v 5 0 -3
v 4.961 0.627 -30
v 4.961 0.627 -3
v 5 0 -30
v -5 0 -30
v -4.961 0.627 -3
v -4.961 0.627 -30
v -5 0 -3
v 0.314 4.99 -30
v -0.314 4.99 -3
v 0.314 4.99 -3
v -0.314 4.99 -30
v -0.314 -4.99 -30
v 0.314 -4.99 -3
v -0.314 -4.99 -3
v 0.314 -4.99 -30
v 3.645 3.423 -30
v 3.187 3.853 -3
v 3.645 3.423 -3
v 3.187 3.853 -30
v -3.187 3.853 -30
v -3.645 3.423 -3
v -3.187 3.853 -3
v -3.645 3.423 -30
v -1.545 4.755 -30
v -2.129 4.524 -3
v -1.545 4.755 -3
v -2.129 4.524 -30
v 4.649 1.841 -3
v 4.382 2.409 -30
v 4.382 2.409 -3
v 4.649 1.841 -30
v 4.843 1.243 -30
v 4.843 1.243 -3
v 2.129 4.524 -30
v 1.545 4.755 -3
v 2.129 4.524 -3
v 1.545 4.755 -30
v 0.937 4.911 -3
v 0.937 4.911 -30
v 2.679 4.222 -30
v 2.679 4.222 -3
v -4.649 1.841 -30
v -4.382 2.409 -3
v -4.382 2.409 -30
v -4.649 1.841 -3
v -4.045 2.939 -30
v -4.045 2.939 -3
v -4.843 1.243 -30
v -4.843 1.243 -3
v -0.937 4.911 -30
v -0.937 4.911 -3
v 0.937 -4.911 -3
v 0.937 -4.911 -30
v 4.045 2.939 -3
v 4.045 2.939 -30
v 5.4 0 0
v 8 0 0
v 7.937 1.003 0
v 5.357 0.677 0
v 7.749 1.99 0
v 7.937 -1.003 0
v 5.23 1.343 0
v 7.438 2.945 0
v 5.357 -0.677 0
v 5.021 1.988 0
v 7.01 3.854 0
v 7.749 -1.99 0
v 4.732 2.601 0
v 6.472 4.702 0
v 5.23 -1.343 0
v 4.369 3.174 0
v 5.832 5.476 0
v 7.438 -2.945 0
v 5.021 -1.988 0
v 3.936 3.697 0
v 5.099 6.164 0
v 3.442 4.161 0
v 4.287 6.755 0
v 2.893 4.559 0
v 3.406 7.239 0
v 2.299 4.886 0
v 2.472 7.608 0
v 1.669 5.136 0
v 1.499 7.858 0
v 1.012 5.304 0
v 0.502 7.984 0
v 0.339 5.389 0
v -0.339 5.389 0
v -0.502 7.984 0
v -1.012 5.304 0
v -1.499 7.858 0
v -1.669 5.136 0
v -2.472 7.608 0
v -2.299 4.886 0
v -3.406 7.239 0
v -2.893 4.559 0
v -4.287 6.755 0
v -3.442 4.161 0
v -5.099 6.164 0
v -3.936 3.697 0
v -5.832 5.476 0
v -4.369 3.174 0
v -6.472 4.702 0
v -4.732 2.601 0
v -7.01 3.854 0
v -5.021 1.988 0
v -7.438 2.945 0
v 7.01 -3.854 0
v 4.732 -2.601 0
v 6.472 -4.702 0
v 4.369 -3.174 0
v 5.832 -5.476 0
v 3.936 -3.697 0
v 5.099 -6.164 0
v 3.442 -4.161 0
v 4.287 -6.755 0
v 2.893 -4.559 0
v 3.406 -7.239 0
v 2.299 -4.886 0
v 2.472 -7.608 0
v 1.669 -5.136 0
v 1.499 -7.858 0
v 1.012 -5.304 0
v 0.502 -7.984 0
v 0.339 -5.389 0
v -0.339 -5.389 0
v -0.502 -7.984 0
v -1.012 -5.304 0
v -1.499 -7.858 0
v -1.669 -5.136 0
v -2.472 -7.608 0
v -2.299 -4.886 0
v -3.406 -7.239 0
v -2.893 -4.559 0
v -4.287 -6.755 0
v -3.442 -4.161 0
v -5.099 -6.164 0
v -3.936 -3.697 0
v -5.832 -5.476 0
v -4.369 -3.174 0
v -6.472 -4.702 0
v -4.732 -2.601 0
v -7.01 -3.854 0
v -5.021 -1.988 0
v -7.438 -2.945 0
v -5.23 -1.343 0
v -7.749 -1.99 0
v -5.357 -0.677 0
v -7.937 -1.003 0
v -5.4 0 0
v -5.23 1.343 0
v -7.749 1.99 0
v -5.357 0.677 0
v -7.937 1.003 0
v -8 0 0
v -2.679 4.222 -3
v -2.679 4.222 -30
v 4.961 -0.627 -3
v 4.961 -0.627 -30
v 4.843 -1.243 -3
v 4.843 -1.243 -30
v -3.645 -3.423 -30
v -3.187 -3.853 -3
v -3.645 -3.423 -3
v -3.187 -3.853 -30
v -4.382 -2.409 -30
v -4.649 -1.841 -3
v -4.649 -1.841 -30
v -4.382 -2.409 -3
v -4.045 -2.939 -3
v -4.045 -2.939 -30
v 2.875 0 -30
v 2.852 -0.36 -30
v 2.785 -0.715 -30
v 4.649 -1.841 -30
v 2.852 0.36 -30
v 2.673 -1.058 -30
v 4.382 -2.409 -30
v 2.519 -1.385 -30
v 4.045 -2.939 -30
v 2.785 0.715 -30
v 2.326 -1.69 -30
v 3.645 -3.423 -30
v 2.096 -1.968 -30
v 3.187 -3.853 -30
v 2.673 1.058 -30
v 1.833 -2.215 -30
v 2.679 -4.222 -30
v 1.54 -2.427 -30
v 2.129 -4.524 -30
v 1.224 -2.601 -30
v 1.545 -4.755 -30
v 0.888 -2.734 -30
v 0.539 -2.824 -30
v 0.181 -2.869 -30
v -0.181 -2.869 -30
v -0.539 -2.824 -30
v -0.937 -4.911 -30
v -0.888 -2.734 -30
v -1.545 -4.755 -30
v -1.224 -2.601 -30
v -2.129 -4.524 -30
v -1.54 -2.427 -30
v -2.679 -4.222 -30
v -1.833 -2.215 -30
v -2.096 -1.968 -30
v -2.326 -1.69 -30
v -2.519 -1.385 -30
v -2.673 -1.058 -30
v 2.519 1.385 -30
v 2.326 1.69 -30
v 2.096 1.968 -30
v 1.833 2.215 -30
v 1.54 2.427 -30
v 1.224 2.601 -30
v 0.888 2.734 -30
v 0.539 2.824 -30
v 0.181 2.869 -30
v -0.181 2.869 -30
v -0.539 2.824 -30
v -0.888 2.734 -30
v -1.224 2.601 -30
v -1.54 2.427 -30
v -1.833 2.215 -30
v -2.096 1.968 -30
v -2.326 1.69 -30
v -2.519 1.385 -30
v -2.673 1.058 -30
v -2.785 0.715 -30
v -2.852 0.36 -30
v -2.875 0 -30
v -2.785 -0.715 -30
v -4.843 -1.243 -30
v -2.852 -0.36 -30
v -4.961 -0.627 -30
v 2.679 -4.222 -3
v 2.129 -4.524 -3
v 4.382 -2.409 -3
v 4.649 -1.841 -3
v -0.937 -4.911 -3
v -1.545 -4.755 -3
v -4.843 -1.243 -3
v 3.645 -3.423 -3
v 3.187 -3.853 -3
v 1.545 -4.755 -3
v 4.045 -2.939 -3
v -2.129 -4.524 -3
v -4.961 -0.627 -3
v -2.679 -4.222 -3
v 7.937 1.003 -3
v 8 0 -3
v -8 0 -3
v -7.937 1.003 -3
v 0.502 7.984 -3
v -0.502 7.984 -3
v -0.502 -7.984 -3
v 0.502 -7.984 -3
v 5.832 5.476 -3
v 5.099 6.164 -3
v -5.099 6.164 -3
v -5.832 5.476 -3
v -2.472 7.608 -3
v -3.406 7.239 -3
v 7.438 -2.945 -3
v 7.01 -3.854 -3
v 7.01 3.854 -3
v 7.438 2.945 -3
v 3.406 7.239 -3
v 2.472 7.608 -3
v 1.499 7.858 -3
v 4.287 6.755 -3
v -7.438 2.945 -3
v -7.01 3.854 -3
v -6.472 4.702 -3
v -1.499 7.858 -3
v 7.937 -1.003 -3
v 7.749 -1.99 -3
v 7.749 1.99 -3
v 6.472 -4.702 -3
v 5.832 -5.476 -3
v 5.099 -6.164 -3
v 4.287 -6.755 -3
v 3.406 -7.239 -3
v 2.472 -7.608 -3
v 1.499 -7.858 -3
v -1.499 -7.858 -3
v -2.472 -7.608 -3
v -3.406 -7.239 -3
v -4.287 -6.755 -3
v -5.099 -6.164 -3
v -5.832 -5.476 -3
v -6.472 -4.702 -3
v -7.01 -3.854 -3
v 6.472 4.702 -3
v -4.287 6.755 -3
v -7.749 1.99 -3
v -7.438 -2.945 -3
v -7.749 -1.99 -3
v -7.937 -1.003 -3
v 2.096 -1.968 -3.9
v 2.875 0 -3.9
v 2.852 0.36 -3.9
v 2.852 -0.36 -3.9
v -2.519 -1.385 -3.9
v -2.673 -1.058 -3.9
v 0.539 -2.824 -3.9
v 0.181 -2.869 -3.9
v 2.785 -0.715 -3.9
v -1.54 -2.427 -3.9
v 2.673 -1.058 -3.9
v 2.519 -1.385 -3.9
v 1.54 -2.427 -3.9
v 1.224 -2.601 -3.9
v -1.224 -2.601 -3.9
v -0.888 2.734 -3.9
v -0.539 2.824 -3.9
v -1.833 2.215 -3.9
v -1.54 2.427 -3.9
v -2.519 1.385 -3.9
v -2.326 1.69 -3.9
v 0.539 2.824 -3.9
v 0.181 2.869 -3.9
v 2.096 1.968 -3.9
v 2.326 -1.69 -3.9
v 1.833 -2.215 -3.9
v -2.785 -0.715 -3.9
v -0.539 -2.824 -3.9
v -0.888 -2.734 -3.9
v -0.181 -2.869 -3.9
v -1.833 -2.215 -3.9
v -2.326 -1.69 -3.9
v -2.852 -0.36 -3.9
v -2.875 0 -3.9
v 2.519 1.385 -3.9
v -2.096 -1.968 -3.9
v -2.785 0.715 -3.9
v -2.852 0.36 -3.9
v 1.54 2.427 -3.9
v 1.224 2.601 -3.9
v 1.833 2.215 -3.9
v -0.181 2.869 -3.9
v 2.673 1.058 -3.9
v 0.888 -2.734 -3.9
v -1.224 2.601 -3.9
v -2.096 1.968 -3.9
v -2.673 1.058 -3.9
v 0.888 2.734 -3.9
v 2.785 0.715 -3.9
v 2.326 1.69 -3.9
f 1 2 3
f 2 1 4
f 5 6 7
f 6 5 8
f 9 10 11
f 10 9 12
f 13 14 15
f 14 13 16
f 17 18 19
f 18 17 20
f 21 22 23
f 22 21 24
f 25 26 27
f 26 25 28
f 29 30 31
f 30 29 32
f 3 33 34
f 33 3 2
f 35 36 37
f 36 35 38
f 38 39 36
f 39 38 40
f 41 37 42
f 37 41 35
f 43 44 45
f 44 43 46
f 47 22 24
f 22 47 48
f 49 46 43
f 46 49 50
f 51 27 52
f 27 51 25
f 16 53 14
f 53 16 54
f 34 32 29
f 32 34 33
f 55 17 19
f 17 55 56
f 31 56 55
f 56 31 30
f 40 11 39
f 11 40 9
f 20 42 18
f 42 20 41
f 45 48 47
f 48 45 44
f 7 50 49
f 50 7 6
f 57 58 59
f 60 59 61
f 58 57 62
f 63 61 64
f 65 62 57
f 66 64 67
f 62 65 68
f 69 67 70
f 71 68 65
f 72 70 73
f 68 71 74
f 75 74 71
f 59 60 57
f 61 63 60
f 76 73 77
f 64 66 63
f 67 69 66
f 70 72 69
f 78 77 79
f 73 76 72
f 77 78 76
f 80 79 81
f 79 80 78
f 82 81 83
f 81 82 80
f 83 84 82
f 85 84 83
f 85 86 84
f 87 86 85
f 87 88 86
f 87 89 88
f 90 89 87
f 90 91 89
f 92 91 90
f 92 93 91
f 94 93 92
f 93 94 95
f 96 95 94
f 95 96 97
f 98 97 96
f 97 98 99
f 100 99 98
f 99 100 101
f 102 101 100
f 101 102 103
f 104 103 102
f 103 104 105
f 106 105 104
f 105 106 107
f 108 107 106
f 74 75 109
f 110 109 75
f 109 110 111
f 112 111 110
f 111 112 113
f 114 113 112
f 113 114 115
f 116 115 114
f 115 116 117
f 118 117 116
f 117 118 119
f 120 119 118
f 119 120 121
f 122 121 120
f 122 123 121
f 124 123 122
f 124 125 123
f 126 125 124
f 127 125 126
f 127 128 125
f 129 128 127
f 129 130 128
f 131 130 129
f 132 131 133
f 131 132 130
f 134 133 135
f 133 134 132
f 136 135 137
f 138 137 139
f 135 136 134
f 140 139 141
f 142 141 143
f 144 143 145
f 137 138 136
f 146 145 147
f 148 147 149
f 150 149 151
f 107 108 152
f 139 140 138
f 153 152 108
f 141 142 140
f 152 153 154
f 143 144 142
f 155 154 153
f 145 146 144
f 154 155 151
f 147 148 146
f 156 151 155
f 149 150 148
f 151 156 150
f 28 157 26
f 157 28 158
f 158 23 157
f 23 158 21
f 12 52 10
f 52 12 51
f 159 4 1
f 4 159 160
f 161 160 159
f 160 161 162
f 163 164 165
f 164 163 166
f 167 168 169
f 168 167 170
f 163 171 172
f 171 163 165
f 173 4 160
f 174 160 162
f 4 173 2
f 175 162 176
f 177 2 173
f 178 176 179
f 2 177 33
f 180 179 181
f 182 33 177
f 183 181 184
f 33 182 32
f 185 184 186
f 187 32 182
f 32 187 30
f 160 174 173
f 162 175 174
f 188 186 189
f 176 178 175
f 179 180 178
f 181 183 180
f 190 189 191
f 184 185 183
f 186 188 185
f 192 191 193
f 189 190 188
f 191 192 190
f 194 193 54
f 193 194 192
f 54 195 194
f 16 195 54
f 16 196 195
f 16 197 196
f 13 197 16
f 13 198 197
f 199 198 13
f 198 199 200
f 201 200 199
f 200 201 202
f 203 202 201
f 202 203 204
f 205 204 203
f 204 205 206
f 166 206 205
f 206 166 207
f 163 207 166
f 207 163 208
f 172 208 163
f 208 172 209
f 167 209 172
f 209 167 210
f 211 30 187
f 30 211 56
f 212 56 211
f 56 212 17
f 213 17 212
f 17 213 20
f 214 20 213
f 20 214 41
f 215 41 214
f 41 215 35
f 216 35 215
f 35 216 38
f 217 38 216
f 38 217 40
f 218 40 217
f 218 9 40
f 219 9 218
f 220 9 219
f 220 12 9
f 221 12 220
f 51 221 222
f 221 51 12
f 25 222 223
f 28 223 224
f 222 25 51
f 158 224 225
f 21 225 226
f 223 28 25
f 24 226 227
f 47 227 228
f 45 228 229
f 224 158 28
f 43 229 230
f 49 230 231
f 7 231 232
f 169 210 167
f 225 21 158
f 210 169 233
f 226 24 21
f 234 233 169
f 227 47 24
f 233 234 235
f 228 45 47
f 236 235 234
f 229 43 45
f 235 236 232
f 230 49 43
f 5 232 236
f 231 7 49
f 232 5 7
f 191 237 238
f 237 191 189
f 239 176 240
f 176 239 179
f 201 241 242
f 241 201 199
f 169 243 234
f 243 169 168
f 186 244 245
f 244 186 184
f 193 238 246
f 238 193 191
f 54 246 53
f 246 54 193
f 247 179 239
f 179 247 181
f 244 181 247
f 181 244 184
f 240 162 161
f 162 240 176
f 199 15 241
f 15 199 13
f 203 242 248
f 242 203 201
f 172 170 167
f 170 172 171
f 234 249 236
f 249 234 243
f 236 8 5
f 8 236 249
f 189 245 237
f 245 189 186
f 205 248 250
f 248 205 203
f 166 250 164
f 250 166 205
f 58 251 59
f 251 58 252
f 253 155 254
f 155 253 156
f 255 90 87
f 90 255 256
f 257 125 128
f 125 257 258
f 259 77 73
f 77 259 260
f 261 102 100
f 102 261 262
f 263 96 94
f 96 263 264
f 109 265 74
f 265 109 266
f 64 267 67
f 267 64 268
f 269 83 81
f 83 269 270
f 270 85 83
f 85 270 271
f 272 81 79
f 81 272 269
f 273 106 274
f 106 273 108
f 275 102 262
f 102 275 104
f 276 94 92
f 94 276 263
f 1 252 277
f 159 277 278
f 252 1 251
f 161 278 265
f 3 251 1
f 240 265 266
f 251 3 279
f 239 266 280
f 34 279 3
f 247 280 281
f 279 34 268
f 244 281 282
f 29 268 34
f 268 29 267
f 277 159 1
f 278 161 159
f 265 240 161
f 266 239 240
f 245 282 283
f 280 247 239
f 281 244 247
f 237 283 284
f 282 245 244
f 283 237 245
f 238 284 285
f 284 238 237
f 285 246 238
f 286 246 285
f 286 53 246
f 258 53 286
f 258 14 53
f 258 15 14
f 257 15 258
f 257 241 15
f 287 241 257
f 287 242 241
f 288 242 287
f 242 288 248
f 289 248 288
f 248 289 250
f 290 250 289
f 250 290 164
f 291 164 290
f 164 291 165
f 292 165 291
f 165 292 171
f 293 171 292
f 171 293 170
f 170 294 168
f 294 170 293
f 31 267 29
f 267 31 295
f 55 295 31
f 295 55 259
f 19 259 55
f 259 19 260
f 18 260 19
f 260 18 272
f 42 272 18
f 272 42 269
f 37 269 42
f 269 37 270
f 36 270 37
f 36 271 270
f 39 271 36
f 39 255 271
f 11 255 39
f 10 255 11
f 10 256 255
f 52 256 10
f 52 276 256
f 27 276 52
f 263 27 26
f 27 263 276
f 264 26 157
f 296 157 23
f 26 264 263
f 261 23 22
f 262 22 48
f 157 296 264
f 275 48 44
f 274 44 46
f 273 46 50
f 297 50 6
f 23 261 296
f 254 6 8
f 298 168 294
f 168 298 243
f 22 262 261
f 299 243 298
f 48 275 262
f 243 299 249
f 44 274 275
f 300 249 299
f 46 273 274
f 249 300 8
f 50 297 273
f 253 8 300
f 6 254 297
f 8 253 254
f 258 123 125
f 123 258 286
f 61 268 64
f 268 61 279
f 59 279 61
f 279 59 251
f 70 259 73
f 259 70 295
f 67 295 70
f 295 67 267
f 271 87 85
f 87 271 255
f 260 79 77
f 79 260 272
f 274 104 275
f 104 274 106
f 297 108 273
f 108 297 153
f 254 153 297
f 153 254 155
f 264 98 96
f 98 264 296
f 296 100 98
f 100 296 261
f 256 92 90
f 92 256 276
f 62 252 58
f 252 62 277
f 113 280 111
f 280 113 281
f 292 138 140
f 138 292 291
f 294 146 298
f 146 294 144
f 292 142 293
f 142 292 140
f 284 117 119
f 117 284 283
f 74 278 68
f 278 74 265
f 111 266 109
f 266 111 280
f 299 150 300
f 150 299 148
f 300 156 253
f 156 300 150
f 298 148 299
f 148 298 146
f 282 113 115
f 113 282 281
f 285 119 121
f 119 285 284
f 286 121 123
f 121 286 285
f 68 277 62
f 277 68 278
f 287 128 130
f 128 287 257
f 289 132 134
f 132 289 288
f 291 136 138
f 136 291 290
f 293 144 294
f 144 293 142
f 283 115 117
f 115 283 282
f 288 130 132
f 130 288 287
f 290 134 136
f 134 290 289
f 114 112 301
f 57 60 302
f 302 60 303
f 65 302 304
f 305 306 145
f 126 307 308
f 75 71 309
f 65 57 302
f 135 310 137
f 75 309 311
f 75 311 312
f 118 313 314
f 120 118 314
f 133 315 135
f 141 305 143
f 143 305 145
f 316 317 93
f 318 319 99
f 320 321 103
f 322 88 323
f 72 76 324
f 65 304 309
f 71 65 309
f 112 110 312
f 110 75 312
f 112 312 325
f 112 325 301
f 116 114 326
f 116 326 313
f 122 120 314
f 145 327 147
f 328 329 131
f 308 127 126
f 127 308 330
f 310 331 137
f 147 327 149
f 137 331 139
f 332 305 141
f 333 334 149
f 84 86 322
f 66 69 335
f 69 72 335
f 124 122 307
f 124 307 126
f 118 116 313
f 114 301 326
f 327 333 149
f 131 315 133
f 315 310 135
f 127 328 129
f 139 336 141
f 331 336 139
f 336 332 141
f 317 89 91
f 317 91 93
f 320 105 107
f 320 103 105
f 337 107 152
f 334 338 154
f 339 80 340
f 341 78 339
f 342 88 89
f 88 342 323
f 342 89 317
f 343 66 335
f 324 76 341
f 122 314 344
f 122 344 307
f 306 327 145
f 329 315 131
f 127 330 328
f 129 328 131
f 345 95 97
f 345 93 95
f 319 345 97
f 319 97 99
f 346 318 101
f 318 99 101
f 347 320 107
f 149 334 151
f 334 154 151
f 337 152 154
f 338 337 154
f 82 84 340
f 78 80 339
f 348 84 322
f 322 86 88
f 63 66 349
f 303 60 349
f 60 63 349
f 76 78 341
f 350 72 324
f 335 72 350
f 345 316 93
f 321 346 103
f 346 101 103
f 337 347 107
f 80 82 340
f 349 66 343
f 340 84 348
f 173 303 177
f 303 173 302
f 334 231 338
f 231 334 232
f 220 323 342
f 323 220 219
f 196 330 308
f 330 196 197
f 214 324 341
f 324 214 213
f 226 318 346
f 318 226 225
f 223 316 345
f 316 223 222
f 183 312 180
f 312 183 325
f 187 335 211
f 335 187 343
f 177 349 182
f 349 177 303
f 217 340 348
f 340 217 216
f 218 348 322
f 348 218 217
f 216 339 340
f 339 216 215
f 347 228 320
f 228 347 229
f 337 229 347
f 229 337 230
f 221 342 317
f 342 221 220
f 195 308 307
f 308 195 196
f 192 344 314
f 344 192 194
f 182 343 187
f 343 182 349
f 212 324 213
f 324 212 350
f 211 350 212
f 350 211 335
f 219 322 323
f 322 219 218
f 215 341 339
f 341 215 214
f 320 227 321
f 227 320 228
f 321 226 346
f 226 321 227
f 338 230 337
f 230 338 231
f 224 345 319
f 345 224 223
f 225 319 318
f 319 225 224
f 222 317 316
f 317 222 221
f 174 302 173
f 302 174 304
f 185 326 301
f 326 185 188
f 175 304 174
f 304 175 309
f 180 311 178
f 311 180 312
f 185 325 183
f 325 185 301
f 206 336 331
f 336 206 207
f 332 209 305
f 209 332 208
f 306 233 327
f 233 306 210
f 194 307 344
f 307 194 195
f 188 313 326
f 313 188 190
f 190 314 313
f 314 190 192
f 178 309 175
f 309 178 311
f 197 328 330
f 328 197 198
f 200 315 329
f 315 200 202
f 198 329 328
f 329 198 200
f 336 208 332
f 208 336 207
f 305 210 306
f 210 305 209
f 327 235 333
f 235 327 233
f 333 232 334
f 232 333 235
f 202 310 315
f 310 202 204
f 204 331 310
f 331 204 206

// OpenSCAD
$fn = 50;


difference() {
	union() {
		translate(v = [0, 0, -30.0000000000]) {
			cylinder(h = 30, r = 5.0000000000);
		}
		translate(v = [0, 0, -3.0000000000]) {
			cylinder(h = 3, r = 8.0000000000);
		}
	}
	union() {
		translate(v = [0, 0, 0]) {
			rotate(a = [0, 0, 0]) {
				difference() {
					union() {
						#translate(v = [0, 0, -30.0000000000]) {
							cylinder(h = 30, r = 2.6000000000);
						}
						#translate(v = [0, 0, -3.9000000000]) {
							cylinder(h = 3.9000000000, r1 = 2.8750000000, r2 = 5.4000000000);
						}
						#translate(v = [0, 0, -30.0000000000]) {
							cylinder(h = 30, r = 2.8750000000);
						}
						#translate(v = [0, 0, -30.0000000000]) {
							cylinder(h = 30, r = 2.6000000000);
						}
					}
					union();
				}
			}
		}
	}
}
